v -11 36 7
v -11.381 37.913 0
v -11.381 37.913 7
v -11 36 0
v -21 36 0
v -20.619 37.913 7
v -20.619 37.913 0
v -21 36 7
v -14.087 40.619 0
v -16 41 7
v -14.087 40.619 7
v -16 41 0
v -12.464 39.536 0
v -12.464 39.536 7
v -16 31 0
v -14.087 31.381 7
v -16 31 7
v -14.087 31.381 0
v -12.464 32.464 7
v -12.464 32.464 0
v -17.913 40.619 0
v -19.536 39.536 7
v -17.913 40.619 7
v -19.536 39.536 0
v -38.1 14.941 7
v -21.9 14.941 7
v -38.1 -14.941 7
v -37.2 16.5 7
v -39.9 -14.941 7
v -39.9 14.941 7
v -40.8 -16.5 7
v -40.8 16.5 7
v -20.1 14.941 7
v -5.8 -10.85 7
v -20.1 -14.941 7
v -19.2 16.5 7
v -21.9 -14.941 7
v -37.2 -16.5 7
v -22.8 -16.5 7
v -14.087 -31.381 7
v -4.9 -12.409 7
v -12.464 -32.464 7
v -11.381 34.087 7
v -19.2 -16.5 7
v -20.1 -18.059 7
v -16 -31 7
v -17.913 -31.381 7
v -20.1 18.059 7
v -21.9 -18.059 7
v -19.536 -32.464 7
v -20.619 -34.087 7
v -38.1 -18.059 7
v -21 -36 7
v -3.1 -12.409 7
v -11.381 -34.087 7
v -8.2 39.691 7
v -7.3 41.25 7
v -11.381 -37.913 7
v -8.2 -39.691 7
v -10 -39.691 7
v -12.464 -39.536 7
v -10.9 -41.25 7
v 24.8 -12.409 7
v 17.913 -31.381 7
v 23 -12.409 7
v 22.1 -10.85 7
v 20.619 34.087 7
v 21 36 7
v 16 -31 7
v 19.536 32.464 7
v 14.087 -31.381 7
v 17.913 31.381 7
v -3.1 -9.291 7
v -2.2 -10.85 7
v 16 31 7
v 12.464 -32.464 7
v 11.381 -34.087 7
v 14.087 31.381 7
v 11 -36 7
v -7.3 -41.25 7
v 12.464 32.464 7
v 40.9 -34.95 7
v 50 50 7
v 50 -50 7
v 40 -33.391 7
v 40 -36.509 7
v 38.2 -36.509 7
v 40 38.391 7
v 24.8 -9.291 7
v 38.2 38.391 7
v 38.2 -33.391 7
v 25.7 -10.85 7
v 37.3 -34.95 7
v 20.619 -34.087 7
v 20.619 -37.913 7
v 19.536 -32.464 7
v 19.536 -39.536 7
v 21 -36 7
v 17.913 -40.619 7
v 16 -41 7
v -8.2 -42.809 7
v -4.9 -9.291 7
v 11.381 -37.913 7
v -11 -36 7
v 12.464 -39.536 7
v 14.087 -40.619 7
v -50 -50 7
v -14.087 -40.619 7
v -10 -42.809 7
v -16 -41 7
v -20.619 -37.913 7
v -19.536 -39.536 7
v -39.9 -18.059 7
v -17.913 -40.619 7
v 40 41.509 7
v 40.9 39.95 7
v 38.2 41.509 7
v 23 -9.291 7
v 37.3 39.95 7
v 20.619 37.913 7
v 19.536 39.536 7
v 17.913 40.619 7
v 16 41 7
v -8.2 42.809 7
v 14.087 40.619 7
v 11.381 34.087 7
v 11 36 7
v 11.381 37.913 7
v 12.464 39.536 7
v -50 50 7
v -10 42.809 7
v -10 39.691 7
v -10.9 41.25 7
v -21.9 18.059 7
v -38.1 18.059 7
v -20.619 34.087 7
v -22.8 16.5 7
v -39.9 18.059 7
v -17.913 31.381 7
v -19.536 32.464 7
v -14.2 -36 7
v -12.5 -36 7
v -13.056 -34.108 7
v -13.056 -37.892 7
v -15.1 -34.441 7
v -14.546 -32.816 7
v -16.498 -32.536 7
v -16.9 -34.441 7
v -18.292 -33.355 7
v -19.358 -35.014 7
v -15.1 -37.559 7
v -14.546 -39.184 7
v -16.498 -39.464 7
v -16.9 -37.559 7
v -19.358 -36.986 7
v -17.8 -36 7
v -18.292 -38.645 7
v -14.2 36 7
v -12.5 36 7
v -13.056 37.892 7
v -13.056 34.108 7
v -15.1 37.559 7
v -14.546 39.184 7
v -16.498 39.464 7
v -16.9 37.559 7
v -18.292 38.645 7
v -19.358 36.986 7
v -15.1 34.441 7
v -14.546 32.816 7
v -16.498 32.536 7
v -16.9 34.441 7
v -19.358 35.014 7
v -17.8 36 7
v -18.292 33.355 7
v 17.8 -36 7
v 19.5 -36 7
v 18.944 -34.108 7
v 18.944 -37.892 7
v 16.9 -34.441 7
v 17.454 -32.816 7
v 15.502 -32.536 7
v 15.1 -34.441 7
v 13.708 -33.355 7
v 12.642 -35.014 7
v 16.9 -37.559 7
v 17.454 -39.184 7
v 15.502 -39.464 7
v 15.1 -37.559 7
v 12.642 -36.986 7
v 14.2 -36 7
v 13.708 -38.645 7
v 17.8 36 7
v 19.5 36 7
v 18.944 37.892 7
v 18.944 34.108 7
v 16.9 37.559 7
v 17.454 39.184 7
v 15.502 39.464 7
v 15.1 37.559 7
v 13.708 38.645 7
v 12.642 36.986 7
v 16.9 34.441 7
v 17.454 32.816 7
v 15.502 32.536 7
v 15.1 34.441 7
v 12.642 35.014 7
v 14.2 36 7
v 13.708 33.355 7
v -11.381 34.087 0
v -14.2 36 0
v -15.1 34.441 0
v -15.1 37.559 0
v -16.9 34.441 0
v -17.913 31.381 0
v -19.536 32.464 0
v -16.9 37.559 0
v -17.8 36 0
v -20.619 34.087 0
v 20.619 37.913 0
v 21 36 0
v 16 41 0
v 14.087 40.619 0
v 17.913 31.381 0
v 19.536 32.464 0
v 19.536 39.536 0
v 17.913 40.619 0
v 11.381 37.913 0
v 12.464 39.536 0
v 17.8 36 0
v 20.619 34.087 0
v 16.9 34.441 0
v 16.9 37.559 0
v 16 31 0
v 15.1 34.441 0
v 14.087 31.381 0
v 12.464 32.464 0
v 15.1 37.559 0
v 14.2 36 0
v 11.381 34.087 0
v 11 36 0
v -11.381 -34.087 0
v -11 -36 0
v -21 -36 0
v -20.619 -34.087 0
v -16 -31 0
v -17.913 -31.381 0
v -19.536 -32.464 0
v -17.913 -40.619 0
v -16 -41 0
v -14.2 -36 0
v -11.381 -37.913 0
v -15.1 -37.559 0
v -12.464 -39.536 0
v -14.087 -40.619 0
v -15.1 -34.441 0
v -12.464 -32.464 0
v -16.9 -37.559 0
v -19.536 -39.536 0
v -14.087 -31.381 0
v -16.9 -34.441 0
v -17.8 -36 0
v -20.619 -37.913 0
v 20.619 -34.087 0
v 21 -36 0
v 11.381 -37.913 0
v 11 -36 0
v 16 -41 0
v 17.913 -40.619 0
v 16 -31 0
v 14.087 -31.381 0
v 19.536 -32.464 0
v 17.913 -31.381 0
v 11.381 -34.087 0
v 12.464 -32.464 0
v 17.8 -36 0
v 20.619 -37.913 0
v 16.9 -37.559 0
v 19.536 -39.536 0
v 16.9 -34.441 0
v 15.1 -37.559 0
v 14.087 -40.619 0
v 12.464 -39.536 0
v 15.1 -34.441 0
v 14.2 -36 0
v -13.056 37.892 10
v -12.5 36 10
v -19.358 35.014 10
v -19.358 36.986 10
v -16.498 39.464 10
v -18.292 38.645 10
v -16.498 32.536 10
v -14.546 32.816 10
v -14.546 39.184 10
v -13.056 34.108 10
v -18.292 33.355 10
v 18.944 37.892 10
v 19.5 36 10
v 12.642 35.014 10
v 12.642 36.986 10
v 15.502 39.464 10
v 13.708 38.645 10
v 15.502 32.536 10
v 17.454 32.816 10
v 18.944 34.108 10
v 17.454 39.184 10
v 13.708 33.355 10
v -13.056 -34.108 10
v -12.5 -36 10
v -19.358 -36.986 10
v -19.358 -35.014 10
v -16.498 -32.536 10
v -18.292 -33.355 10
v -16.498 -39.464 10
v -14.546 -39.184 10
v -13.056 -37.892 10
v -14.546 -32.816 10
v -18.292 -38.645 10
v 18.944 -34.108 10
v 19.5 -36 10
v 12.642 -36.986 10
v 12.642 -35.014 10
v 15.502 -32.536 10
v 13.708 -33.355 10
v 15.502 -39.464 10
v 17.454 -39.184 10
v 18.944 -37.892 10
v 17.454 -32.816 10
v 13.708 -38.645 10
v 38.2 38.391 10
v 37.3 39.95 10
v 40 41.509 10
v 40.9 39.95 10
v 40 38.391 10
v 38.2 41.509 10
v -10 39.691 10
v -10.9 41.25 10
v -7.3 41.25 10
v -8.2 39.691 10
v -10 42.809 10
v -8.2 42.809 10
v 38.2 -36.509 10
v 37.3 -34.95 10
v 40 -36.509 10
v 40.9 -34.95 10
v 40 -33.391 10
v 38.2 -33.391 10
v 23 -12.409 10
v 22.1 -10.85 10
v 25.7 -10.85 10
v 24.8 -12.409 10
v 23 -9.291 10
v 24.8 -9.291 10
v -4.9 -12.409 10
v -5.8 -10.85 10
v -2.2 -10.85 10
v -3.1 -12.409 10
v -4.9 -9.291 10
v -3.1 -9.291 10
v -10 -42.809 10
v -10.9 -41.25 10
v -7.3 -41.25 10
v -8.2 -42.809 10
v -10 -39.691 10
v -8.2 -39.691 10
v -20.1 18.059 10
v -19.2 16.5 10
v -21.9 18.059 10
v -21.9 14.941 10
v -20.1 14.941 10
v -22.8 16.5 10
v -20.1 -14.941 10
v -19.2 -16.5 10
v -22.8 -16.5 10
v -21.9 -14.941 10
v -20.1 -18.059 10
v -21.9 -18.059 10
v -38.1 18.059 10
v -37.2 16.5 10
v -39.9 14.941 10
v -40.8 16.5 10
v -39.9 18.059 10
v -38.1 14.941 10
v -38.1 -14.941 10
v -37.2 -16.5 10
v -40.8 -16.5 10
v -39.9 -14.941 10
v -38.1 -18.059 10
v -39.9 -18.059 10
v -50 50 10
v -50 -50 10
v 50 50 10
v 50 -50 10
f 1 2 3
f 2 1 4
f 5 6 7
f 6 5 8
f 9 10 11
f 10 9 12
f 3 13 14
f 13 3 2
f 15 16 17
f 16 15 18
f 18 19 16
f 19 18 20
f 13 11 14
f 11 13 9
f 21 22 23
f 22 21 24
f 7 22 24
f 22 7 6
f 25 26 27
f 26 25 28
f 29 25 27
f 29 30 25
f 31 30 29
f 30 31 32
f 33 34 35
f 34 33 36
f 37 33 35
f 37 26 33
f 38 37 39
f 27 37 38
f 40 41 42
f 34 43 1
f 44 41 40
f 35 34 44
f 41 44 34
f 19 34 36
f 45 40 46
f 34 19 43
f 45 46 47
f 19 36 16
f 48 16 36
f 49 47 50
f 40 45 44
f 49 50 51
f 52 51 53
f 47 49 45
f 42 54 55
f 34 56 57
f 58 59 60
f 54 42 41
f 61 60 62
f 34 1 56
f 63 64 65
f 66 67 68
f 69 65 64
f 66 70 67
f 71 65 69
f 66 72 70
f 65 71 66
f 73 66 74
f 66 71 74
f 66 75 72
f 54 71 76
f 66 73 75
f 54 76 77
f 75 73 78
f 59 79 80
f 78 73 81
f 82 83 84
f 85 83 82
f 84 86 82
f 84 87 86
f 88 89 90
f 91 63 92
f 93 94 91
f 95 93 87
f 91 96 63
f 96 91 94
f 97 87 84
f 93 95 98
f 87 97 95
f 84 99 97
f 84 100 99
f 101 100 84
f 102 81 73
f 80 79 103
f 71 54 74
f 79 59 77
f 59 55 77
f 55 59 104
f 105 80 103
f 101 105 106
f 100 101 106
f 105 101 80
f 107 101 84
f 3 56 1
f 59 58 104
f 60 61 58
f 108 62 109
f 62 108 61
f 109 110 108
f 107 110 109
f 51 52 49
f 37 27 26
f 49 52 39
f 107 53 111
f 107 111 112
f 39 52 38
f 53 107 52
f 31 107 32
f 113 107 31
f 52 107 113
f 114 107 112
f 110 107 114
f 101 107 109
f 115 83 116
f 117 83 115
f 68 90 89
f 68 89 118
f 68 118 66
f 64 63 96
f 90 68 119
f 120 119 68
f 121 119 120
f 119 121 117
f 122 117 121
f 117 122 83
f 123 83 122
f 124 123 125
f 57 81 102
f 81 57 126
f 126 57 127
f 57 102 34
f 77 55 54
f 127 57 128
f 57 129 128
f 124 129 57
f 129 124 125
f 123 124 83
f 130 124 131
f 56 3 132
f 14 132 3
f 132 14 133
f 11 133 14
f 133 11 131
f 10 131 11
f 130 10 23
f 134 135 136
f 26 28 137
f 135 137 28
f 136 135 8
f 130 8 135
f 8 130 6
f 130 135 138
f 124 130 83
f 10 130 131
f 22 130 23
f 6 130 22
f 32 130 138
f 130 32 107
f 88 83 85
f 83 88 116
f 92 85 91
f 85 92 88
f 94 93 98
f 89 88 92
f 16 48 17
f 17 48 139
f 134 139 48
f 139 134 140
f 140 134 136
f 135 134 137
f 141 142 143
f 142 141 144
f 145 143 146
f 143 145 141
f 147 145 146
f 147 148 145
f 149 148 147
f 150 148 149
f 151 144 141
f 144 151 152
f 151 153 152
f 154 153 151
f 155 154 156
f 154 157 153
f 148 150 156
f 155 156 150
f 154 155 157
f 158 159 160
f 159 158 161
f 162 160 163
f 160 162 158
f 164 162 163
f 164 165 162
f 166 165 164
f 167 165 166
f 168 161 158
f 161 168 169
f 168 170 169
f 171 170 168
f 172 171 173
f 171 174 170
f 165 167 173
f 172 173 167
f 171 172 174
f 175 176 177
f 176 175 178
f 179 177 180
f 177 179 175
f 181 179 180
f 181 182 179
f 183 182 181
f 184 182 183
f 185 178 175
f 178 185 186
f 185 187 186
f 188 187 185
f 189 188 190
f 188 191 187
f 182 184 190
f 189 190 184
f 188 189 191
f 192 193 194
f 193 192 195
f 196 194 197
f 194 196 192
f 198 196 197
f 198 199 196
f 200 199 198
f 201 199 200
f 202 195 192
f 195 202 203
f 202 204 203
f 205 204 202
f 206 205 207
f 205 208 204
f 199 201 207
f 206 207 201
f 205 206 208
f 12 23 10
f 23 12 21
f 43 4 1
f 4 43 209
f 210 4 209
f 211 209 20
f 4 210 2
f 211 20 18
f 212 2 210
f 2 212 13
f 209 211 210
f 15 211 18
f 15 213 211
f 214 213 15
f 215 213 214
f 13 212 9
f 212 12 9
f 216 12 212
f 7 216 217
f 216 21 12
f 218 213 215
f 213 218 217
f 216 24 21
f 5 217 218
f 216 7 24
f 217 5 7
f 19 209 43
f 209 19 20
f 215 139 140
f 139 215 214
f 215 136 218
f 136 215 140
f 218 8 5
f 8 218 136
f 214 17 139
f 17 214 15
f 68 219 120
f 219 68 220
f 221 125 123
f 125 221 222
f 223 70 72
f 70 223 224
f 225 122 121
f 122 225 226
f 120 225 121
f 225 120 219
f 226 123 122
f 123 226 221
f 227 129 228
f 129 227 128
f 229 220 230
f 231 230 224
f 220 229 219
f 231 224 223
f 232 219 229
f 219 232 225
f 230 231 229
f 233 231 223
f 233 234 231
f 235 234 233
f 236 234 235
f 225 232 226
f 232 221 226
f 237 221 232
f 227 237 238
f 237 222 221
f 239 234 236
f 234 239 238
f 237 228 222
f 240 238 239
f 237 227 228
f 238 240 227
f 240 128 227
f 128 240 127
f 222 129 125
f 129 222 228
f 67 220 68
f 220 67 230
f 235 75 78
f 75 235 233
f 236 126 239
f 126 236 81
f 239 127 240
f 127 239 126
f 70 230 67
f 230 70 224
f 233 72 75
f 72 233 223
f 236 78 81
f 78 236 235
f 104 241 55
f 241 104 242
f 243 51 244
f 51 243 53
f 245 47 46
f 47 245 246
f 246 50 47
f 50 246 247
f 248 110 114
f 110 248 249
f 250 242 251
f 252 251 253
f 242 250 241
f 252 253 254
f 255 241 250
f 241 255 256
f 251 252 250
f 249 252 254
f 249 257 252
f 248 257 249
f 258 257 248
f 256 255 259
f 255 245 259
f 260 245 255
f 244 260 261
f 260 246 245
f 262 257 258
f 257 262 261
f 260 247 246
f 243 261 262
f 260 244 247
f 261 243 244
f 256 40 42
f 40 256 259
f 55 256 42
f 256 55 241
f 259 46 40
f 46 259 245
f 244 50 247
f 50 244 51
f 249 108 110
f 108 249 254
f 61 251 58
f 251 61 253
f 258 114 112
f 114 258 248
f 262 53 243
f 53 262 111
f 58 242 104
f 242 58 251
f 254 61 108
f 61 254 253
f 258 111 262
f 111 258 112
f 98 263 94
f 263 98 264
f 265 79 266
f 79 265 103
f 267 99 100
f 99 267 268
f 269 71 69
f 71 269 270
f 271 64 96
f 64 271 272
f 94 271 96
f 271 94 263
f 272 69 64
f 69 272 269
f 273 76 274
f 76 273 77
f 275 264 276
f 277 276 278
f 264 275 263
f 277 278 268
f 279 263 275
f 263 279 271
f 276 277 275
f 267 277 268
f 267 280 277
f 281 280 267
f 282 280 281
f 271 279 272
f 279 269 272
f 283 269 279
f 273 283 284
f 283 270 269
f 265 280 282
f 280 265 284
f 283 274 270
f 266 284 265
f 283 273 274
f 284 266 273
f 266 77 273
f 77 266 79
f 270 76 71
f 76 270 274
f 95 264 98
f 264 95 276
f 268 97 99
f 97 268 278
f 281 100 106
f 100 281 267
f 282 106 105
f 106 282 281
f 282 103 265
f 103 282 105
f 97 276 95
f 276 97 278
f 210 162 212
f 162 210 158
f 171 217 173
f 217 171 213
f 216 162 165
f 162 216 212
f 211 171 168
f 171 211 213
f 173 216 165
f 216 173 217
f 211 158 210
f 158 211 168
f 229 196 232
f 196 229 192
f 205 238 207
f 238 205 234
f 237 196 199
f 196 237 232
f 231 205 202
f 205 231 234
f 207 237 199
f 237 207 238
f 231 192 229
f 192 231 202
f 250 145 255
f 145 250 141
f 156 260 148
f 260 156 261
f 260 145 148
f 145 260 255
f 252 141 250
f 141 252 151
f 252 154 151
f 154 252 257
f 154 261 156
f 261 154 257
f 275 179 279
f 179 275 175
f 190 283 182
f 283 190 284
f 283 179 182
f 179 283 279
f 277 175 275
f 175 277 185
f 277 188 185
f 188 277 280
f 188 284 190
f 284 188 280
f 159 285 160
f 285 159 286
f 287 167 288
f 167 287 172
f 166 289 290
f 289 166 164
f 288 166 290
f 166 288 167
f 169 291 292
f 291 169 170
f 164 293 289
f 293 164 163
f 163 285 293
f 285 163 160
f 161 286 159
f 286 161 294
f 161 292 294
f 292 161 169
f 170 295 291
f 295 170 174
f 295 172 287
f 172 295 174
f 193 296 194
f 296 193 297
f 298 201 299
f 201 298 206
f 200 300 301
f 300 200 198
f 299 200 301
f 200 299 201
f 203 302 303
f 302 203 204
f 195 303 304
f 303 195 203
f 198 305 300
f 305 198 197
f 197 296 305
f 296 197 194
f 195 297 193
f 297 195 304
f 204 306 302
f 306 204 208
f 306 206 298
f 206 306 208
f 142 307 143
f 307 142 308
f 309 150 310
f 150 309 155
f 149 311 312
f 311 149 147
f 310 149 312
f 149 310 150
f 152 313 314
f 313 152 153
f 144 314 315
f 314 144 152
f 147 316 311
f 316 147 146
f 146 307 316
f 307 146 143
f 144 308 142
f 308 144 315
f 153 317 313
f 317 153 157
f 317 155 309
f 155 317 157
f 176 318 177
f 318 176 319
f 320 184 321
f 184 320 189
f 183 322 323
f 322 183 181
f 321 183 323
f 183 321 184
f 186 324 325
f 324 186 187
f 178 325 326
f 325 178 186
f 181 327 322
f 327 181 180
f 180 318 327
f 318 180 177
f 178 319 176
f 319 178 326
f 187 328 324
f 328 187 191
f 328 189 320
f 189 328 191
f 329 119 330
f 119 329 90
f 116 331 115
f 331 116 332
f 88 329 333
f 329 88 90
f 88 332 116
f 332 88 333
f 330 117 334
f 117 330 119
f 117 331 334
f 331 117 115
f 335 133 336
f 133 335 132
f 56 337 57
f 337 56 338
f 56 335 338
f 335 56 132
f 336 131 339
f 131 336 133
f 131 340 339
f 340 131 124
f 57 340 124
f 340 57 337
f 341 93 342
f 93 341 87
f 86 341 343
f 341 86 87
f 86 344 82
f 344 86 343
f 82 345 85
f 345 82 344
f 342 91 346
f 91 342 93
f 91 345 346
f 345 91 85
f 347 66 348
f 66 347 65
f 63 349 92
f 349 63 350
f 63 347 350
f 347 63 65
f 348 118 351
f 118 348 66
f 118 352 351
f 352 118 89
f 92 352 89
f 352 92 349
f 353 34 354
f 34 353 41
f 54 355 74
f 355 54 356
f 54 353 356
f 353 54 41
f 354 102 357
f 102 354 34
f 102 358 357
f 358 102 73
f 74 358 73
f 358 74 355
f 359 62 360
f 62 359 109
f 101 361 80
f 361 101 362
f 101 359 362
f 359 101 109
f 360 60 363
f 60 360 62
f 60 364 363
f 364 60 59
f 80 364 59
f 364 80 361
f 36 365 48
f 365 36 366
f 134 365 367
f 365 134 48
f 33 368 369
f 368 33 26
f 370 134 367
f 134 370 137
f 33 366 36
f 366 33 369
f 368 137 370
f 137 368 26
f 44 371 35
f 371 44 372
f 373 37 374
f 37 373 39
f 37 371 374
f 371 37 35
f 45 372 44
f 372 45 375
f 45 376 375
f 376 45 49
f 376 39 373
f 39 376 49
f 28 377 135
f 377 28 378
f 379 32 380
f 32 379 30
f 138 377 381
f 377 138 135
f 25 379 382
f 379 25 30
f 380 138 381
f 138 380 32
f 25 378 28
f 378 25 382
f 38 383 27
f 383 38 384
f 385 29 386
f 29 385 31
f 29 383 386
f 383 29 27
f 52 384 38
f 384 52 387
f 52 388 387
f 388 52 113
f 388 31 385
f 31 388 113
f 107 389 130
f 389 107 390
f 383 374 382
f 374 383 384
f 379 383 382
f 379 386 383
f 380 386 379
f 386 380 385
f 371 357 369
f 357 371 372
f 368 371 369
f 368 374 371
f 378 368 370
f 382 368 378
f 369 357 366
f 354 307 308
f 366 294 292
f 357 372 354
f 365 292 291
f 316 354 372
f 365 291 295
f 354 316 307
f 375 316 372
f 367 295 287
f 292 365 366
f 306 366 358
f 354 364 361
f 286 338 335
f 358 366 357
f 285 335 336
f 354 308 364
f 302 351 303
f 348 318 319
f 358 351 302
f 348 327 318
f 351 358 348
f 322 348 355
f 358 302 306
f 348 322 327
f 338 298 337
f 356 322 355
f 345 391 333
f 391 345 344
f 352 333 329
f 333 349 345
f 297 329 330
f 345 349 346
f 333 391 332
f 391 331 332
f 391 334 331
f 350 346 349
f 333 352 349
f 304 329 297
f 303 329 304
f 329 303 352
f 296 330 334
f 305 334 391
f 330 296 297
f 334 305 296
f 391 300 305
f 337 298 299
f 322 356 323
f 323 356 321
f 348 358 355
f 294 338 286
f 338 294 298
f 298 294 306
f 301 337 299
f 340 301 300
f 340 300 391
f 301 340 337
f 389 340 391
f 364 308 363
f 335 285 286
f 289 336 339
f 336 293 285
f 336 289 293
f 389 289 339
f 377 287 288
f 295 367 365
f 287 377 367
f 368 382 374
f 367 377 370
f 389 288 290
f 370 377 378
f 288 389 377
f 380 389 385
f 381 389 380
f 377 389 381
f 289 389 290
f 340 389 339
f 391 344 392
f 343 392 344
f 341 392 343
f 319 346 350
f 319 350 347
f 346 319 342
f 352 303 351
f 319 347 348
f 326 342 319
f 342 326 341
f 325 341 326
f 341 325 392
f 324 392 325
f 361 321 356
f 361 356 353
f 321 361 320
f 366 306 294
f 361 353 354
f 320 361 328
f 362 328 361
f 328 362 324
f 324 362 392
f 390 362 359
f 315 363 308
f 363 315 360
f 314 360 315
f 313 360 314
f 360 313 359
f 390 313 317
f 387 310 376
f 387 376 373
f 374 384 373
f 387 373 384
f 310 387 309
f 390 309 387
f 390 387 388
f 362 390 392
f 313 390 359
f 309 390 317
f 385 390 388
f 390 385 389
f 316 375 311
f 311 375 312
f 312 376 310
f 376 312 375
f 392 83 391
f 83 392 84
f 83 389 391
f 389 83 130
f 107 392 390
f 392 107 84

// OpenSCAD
module screw_hole(radius = 1.8, height = 5) {
    cylinder(h = height, r1 = radius, r2 = radius);
}

module stud(radius = 5) {
    cylinder(h = 7, r1 = radius, r2 = radius);
}

module chassis_holes(radius = 1.8) {
    x = 16;
    y = 36;
    translate([-x, y, 0])   screw_hole(radius = radius, height = 9);
    translate([x, y, 0])    screw_hole(radius = radius, height = 9);
    translate([-x, -y, 0])  screw_hole(radius = radius, height = 9);
    translate([x, -y, 0])   screw_hole(radius = radius, height = 9);
}

module chassis_studs() {
    x = 16;
    y = 36;
    translate([-x, y, 0]) stud();
    translate([x, y, 0]) stud();
    translate([-x, -y, 0]) stud();
    translate([x, -y, 0]) stud();
}

module chassis() {
    difference() {
        chassis_studs();
        translate([0,0,-1]) chassis_holes();
    }
}

module mega_holes(x = 0, y = 0) {
    translate([x - 24.1, y - 39.95, 0])  screw_hole();
    translate([x + 24.1, y - 41.25, 0])  screw_hole();
    translate([x - 24.1, y + 34.95, 0])  screw_hole();
    translate([x - 8.9,  y + 10.85, 0])  screw_hole();
    translate([x + 19,   y + 10.85, 0])  screw_hole();
    translate([x + 24.1, y + 41.25, 0])  screw_hole();
}

module sensor_holes(x = 0, y = 0) {
    translate([x + 9, y + 16.5, 0]) screw_hole();
    translate([x + 9, y - 16.5, 0]) screw_hole();
    translate([x - 9, y + 16.5, 0]) screw_hole();
    translate([x - 9, y - 16.5, 0]) screw_hole();
}

module platform_trimming() {
    translate([-43.5,  21, 0]) cube([21, 26, 5]);
    translate([-43.5, -56, 0]) cube([21, 26, 5]);
    translate([-43,   -18, 0]) cube([10, 26, 5]);
}

module platform() {
    difference() {
        translate([-50, -50, 7]) cube([100, 100, 3]);
        translate([0, 0, 6]) chassis_holes(radius = 3.5);
        translate([0, 0, 6]) rotate(180) mega_holes(x = -15, y = 0);
        translate([0, 0, 6]) sensor_holes(x = -30, y = 0);
    }
}

chassis();
platform();
